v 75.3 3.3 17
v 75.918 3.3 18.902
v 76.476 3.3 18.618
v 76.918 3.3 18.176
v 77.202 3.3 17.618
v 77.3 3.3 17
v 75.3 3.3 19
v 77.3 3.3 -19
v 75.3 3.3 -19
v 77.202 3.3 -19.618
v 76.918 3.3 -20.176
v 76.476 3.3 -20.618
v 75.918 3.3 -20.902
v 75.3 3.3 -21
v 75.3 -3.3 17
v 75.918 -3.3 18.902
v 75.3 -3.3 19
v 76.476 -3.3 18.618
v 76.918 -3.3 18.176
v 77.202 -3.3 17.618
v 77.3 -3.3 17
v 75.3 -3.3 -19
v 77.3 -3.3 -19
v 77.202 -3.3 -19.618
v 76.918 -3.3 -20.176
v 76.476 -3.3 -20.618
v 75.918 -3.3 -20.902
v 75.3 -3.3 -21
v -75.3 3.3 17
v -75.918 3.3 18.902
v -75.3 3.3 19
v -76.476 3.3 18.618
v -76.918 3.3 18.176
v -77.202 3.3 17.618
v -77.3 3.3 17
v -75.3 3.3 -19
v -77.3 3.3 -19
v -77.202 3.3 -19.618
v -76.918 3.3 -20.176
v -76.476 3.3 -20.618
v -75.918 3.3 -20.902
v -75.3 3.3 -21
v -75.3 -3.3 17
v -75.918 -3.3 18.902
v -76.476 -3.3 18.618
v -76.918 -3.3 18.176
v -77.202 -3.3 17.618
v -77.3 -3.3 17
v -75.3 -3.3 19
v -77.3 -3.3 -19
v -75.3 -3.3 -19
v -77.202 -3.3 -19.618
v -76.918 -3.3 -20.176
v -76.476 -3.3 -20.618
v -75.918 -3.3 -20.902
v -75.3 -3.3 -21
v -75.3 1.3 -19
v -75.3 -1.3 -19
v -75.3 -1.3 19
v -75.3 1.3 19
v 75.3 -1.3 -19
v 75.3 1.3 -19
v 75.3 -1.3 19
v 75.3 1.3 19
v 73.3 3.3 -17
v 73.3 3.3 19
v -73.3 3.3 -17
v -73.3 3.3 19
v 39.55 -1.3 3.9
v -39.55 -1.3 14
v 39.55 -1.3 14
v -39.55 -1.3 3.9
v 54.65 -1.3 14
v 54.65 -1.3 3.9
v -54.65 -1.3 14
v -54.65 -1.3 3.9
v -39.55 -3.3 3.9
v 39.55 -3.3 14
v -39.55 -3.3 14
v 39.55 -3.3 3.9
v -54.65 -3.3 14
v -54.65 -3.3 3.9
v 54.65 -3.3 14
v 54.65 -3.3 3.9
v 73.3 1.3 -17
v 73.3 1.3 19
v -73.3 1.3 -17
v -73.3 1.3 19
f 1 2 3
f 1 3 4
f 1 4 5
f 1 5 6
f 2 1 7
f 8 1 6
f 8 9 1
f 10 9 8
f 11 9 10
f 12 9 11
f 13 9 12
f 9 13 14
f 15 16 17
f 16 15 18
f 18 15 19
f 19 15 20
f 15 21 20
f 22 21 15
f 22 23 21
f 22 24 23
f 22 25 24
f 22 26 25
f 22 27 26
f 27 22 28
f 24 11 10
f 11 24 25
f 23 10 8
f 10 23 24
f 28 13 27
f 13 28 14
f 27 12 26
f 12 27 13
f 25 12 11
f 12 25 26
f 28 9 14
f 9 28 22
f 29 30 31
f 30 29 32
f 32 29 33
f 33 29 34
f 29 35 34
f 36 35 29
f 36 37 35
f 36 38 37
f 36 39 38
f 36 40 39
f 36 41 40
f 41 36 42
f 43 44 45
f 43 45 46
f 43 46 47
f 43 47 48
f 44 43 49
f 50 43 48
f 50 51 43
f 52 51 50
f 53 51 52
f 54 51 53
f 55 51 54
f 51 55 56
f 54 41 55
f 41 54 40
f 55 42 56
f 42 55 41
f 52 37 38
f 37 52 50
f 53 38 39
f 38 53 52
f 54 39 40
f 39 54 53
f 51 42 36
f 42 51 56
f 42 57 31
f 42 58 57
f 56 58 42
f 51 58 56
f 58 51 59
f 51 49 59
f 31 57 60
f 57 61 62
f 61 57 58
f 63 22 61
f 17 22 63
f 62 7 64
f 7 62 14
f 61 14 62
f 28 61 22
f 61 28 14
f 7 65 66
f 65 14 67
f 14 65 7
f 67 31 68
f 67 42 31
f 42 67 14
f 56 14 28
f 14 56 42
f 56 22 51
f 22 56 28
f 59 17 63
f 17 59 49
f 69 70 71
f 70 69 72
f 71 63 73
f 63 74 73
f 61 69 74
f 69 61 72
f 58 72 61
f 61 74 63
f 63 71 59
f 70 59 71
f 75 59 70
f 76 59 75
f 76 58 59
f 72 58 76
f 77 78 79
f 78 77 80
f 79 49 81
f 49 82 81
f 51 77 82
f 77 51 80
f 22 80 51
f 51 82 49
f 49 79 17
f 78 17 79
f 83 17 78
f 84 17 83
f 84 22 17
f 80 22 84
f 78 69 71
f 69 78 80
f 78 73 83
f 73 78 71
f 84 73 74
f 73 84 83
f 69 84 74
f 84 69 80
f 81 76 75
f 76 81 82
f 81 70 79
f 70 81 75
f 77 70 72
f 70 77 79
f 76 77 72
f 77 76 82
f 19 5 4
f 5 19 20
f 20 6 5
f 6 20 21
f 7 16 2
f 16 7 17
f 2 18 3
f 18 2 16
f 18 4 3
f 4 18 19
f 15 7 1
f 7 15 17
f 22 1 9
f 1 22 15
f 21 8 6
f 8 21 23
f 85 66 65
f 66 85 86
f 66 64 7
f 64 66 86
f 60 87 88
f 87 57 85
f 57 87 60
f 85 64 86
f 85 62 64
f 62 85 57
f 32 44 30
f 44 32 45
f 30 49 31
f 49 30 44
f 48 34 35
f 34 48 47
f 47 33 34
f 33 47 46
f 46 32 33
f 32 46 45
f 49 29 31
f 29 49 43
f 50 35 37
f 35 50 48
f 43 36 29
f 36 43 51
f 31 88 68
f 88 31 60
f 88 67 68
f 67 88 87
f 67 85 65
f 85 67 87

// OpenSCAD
// ------------------------------------------------------------------------------------------
// Swatch Holder for Filament Spool Holder (2/2) - Swatch Holder
// ------------------------------------------------------------------------------------------
//
// Corresponding swatch holder for the preceding peg clip
// Can be used as a standalone swatch holder by turning off the 'Include Cutout' parameter
//
// Print in rendered orientation, no supports or brim should be required unless the cutout
// sags, do not print on its side as the arms would need supports
//
// https://github.com/SiDtheTurtle/CAD/SwatchHolderForFilamentSpoolHolder/
//
// ------------------------------------------------------------------------------------------

// ------------------------------------------------------------------------------------------
// Parameters
// ------------------------------------------------------------------------------------------

// Width of the swatch, defaults to 150mm for 2x fenglyu@MakerWorld's short cards, anything wider won't fit if you have multiple holders, unless you've scaled the pegs accordingly
Swatch_Width = 150; //[50:300]

// Thickness of the swatch, defaults to 2mm for both versions of fenglyu@MakerWorld's cards, use 2.2mm for Makkuro@Printables design
Swatch_Depth = 2; //[2:0.1:10]

// Overall thickness off all the dimensions, increase to make a bulkier holder
Holder_Thickness = 2; // [2:0.1:5]

// Added buffer for expansion to allow the swatch to slide in easily
Material_Tolerance = 0.3; // [0:0.1:1]

// Switch to turn off the cutout if using the swatch holder without the corresponding peg clip holder
Include_Cutout = true;

// For the connector to the clip, how much extra to expand the hole. Increase if you're having trouble pushing the connector in, decrease if the join is too loose.
Join_Tolerance = 0.1; // [0:0.1:1]

// Width of the cutout, should match the Clip_Width parameter on the peg clip
Cutout_Width = 15; // [15:100]

// Height of the cutout, shoud match the Nub_Height parameter on the peg clip
Cutout_Height = 10;  // [10:30]

// Distance beyond the holder foot before the cutout is drawn, set to provide a gap between the foot and clip, allowing the spool to rest on the peg not the clip
Cutout_Spacing = 10; // [5:50]

/* [Hidden] */

// Overall width: the width of the swatches, plus the holder thickness times two (two arms), plus the material tolerance times 2
Overall_Width = Swatch_Width + (Holder_Thickness * 2) + (Material_Tolerance * 2);

// Overall depth: the holder thickness times 2 (the back and lips), plus the depth of the swatch, plus the material tolerance times 2
Overall_Depth = (Holder_Thickness * 2) + Swatch_Depth + (Material_Tolerance * 2);

// Overall holder height, forced to allow bottom of holder to sit flush with the feet of the holder, will need changing if the holder is scaled
Overall_Height = 40;
 
// Width of the clip's male connector
Join_Width = Cutout_Width + Join_Tolerance;

// Height of the clip's male connector
Join_Height = Cutout_Height + Join_Tolerance;

// Distance above clip's male connector to the top of the connector
Join_Top_Distance = 5;

// Size of the filament spool holder foot
Foot_Width = 25;

// ------------------------------------------------------------------------------------------
// Modules
// ------------------------------------------------------------------------------------------

// Module to generate a rounded corner, sub-module of Rounded_Corner(Q)
module Rounded_Corner_Element(H) {
    translate([Holder_Thickness / -2, Holder_Thickness / 2,0]) {
        difference() {
            cylinder(h = H, r = Holder_Thickness, $fn = 20, center = true);
            translate([0, Holder_Thickness / 2, 0]) {
                cube([Holder_Thickness * 2, Holder_Thickness, H + 1], center = true);
            }
            translate([Holder_Thickness / -2, Holder_Thickness / -2, 0]) {
                cube([Holder_Thickness, Holder_Thickness + 1, H + 1], center = true);
            }
        }
    }
}

// Module to generate a rounded corner, Q specifies what orientation in the style of a clock i.e. 1==noon to 3, 2==3 to 6 etc.
module Rounded_Corner(Q, H) {  
    if (Q == 1) {
        rotate([0, -90, -90]) {
            Rounded_Corner_Element(H);
        }
    }
    else if (Q == 2) {
        rotate([-90, 90, -180]) {
            Rounded_Corner_Element(H);
        }        
    }
    else if (Q == 3) {
        rotate([90, 0, 0]) {
            Rounded_Corner_Element(H);
        }        
    }    
    else if (Q == 4) {
        rotate([-90, 0, 0]) {
            Rounded_Corner_Element(H);
        }        
    }    
}

// Module to generate the back of the swatch holder
module Base() {
    color("red") {
        translate([0, 0, Overall_Height / - 2]) {
            cube([
                Overall_Width - (Holder_Thickness * 2),
                Overall_Depth,
                Holder_Thickness],
                center = true
            );
            translate([(Overall_Width / 2)+(Holder_Thickness / -2), 0, 0]) {
                Rounded_Corner(Q = 3, H = Overall_Depth);
            }
            translate([(Overall_Width / -2)+(Holder_Thickness / 2), 0, 0]) {
                Rounded_Corner(Q = 2, H = Overall_Depth);
            }            
        }
    }
}

// Module to generate the side arm of the holder, sub-module of Arm(D)
module Arm_Element() {
    cube([
        Holder_Thickness,
        Overall_Depth,
        Overall_Height - (Holder_Thickness * 2)],
        center = true
    );
}

// Module to generate the lip of the holder, sub-module of Arm(D)
module Lip_Element() {
    cube([
        Holder_Thickness,
        Holder_Thickness,
        Overall_Height - Holder_Thickness],
        center = true
    );
}

// Module to generate the overall arm of the holder, D specifies left or right arm
module Arm(D) {
    color("green") {
        if (D == "left") {
            // Arm with rounded corner
            translate([(Overall_Width-Holder_Thickness) / 2, 0, Holder_Thickness / -2]) {
                Arm_Element();
                translate([0, 0, (Overall_Height - Holder_Thickness) / 2]) {
                    Rounded_Corner(Q = 4, H = Overall_Depth);
                }
            }
            // Lip
            translate([(Overall_Width / 2) - Holder_Thickness - (Holder_Thickness / 2), (Overall_Depth / 2) - (Holder_Thickness / 2), 0]) {
               Lip_Element();
            }
          
      }
      else if (D=="right") {
          // Arm with rounded corner
          translate([(Overall_Width-Holder_Thickness) / -2, 0, Holder_Thickness / -2]) {
              Arm_Element();
              translate([0, 0, (Overall_Height-Holder_Thickness) / 2]) {
                  Rounded_Corner(Q = 1, H = Overall_Depth);
              }              
          }
          //Lip
          translate([(Overall_Width / -2) + Holder_Thickness - (Holder_Thickness / -2), (Overall_Depth / 2) - (Holder_Thickness / 2), 0]) {
              Lip_Element();
          }          
      }
    }
}

// Module to generate the central arm to hold the base of the two swatches
module CentreArm() {
    color("orange") {
        translate([0, (Overall_Depth - Holder_Thickness) / 2, (Overall_Height / -2) + Holder_Thickness]) {
            cube(
                [Overall_Width - (Holder_Thickness * 4),
                Holder_Thickness,
                Holder_Thickness],
                center = true
            );
        }
    }
}

// Module to generate the back piece of the holder, sub-module of Back(C)
module Back_Element() {
    cube([
        Swatch_Width + (Material_Tolerance*2),
        Holder_Thickness,
        Overall_Height - Holder_Thickness],
        center = true
    );    
}

// Module to generate the back piece cutout, sub-module of Back(C)
module Back_Cutout_Element() {
    translate([0, 0, ((Overall_Height - Holder_Thickness - Join_Height) / 2) - Join_Top_Distance]) {
        cube([
            Join_Width,
            Holder_Thickness + 1,
            Join_Height],
            center=true
        );
    }
}

// Module to generate the back portion of the holder, C specifies whether there should be a
// cutout for the peg clip, set to false if using the holder without the peg clip
module Back(C) {
    color("blue") {
        translate([0, (Overall_Depth - Holder_Thickness) / -2, 0]) {
            if (C==true) {
                difference() {
                    Back_Element();
                    translate([((Overall_Width - Join_Width - Foot_Width - Material_Tolerance) / 2) - Cutout_Spacing, 0, 0]) {
                        Back_Cutout_Element();
                    }
                    translate([((Overall_Width - Join_Width - Foot_Width - Material_Tolerance) / -2) + Cutout_Spacing, 0, 0]) {
                        Back_Cutout_Element();
                    }
                }
            }
            else {
                Back_Element();
            }
        }
    }
}

// ------------------------------------------------------------------------------------------
// Rendering
// ------------------------------------------------------------------------------------------

Base();
Back(C=Include_Cutout);
Arm(D="left");
Arm(D="right");
CentreArm();
